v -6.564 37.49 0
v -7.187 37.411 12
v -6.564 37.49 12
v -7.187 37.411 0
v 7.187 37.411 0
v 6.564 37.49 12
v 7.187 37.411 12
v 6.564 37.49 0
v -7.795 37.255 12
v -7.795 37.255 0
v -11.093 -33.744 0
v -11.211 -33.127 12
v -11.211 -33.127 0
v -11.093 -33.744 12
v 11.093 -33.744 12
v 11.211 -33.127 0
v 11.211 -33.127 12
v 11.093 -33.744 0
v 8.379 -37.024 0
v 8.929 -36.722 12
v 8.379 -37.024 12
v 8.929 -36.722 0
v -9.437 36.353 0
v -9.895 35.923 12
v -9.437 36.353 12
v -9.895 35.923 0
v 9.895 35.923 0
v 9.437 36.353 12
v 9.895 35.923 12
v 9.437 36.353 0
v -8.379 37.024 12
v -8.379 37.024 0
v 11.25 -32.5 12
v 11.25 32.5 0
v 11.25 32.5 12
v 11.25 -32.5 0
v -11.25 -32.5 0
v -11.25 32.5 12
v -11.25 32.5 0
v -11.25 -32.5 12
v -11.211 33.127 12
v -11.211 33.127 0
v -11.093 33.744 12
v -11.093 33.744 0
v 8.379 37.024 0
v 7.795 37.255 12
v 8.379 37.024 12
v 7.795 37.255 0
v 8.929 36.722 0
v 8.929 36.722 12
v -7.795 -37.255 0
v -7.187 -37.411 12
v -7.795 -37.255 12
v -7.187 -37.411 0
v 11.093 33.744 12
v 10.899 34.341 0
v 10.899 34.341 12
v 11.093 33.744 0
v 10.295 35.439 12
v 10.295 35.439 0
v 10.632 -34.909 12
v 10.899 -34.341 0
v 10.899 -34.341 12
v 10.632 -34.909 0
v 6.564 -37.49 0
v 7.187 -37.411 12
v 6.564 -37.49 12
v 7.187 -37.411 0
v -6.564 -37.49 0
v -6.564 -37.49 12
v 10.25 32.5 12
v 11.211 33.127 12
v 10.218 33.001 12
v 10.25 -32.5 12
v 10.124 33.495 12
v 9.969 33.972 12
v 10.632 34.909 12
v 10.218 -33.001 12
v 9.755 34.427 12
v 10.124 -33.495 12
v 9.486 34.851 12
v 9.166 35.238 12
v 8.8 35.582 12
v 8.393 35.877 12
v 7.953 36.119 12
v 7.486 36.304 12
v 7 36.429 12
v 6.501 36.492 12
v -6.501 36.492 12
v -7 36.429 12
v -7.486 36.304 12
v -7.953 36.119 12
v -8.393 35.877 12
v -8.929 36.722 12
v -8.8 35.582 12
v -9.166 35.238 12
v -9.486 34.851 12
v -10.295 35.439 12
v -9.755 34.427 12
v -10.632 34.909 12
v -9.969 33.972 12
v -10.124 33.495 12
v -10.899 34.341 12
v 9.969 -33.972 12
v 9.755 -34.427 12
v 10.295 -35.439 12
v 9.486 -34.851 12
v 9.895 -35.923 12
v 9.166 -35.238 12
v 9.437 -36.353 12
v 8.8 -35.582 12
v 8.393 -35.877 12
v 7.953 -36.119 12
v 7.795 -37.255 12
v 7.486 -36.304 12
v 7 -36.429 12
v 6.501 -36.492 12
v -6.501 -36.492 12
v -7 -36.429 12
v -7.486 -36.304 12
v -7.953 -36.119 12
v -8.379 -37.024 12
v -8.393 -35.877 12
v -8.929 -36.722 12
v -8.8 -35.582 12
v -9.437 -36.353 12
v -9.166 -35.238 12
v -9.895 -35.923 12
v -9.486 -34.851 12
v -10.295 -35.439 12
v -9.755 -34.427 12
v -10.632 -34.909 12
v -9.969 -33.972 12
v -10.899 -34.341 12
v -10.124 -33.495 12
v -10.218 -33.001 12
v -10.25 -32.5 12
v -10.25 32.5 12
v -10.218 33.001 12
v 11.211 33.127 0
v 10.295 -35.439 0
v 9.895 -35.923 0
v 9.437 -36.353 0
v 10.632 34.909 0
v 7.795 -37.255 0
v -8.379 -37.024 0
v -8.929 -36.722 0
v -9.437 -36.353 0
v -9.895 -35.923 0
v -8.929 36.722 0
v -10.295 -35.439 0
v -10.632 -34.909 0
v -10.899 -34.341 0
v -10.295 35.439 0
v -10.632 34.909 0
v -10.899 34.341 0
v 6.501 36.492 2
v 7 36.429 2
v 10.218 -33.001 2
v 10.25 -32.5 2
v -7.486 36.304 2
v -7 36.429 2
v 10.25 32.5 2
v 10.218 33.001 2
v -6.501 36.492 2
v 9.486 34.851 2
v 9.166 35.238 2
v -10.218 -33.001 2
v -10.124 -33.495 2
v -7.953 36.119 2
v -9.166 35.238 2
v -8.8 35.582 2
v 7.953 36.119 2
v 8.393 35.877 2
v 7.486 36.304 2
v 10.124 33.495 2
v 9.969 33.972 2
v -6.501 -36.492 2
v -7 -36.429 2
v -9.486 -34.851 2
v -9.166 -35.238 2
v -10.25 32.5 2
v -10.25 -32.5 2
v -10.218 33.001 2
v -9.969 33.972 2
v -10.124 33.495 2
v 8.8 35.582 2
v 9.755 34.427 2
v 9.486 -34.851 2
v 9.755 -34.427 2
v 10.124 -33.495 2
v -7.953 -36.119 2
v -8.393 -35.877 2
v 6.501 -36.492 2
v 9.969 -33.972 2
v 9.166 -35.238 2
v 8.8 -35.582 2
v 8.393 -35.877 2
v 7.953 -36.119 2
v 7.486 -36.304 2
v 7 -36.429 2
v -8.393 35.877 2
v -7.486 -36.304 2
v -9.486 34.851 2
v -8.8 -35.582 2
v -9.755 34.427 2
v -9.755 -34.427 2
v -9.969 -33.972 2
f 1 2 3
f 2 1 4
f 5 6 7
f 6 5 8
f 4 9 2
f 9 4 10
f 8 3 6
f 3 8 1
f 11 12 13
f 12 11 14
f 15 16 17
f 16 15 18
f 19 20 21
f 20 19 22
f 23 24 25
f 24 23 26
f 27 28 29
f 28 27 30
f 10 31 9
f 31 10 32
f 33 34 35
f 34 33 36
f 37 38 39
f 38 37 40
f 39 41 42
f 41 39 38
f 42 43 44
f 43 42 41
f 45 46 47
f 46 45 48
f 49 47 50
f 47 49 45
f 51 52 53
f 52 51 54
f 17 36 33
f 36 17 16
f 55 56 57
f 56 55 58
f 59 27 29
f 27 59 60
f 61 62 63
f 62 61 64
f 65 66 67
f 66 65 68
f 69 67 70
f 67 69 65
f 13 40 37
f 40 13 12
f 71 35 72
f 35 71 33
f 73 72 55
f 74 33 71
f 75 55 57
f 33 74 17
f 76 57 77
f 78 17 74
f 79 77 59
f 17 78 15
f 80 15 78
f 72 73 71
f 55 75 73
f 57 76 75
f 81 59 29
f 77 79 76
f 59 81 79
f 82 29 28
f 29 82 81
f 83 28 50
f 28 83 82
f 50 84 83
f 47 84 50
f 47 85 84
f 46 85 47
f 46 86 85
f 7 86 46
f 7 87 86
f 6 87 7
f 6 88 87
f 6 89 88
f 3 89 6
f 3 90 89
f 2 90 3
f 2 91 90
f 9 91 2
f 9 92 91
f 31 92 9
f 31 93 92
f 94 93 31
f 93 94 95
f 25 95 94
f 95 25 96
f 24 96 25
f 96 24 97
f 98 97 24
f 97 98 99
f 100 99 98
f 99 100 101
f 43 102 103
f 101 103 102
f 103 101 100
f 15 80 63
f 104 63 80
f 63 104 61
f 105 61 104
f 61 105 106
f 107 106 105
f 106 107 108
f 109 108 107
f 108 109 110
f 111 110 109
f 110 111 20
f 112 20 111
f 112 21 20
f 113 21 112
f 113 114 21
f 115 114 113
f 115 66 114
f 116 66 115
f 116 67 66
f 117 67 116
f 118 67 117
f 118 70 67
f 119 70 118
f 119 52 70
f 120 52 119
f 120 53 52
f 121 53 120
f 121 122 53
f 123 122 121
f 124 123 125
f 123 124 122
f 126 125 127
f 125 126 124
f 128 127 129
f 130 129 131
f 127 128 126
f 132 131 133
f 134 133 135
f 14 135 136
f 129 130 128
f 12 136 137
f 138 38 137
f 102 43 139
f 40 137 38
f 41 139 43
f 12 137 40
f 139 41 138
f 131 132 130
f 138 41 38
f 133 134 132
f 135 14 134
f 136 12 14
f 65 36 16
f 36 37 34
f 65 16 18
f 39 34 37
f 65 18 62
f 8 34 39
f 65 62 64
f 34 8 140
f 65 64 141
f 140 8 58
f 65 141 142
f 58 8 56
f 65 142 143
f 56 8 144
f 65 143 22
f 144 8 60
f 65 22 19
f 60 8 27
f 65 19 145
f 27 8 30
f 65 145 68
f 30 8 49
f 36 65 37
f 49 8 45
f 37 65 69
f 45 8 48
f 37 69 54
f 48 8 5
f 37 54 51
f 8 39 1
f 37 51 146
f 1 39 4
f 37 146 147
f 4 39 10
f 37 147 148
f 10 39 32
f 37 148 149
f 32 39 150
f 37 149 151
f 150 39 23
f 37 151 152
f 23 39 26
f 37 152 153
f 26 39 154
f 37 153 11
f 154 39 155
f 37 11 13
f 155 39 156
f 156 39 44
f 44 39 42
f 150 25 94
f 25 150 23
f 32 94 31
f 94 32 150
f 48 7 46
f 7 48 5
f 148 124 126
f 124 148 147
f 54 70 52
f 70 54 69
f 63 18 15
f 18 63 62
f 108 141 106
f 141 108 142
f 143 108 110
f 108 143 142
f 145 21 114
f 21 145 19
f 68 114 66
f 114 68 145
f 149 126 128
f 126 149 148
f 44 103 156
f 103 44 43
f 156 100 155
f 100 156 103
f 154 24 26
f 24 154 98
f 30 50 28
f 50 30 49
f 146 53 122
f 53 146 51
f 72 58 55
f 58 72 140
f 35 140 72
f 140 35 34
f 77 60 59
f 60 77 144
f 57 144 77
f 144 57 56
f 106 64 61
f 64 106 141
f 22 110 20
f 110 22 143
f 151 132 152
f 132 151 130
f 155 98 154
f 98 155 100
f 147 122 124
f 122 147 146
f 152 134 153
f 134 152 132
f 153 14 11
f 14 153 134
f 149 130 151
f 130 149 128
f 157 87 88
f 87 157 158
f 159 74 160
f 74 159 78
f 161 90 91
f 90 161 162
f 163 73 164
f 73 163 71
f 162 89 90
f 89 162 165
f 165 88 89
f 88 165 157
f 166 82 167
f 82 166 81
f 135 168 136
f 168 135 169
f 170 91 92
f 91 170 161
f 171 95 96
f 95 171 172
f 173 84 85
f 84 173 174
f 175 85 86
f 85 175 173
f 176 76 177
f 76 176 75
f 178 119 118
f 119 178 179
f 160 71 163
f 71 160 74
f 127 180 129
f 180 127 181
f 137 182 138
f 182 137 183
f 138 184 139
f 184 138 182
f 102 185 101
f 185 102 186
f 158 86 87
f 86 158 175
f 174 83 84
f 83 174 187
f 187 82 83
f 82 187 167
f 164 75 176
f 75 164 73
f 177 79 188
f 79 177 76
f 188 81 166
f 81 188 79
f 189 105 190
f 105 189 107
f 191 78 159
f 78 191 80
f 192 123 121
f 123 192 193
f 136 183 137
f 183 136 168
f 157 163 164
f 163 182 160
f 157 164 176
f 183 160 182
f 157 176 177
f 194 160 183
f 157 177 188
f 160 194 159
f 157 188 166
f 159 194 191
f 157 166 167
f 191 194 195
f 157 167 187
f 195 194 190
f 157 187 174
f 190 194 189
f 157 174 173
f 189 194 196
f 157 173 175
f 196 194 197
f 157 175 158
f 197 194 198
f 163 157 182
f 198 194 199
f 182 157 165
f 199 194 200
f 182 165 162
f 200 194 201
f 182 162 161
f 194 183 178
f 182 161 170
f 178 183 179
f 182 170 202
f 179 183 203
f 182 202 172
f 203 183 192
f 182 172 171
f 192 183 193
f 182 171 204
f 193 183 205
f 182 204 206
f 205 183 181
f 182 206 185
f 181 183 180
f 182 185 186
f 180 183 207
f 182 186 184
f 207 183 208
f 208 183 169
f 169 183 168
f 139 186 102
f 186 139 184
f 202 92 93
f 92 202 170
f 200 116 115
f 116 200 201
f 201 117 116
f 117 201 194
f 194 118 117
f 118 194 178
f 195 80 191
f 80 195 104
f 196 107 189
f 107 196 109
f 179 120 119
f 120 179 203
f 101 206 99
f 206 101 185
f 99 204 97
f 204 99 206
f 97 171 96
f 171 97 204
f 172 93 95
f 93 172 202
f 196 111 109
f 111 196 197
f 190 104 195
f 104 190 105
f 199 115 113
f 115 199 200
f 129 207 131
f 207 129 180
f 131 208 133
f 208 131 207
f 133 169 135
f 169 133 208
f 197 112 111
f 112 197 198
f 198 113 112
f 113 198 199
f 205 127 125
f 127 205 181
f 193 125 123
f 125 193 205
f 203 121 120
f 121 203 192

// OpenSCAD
$fn = 50;


difference() {
	union() {
		hull() {
			translate(v = [-6.2500000000, 32.5000000000, 0]) {
				cylinder(h = 12, r = 5);
			}
			translate(v = [6.2500000000, 32.5000000000, 0]) {
				cylinder(h = 12, r = 5);
			}
			translate(v = [-6.2500000000, -32.5000000000, 0]) {
				cylinder(h = 12, r = 5);
			}
			translate(v = [6.2500000000, -32.5000000000, 0]) {
				cylinder(h = 12, r = 5);
			}
		}
	}
	union() {
		translate(v = [0, 0, 2]) {
			hull() {
				translate(v = [-6.2500000000, 32.5000000000, 0]) {
					cylinder(h = 10, r = 4);
				}
				translate(v = [6.2500000000, 32.5000000000, 0]) {
					cylinder(h = 10, r = 4);
				}
				translate(v = [-6.2500000000, -32.5000000000, 0]) {
					cylinder(h = 10, r = 4);
				}
				translate(v = [6.2500000000, -32.5000000000, 0]) {
					cylinder(h = 10, r = 4);
				}
			}
		}
	}
}
